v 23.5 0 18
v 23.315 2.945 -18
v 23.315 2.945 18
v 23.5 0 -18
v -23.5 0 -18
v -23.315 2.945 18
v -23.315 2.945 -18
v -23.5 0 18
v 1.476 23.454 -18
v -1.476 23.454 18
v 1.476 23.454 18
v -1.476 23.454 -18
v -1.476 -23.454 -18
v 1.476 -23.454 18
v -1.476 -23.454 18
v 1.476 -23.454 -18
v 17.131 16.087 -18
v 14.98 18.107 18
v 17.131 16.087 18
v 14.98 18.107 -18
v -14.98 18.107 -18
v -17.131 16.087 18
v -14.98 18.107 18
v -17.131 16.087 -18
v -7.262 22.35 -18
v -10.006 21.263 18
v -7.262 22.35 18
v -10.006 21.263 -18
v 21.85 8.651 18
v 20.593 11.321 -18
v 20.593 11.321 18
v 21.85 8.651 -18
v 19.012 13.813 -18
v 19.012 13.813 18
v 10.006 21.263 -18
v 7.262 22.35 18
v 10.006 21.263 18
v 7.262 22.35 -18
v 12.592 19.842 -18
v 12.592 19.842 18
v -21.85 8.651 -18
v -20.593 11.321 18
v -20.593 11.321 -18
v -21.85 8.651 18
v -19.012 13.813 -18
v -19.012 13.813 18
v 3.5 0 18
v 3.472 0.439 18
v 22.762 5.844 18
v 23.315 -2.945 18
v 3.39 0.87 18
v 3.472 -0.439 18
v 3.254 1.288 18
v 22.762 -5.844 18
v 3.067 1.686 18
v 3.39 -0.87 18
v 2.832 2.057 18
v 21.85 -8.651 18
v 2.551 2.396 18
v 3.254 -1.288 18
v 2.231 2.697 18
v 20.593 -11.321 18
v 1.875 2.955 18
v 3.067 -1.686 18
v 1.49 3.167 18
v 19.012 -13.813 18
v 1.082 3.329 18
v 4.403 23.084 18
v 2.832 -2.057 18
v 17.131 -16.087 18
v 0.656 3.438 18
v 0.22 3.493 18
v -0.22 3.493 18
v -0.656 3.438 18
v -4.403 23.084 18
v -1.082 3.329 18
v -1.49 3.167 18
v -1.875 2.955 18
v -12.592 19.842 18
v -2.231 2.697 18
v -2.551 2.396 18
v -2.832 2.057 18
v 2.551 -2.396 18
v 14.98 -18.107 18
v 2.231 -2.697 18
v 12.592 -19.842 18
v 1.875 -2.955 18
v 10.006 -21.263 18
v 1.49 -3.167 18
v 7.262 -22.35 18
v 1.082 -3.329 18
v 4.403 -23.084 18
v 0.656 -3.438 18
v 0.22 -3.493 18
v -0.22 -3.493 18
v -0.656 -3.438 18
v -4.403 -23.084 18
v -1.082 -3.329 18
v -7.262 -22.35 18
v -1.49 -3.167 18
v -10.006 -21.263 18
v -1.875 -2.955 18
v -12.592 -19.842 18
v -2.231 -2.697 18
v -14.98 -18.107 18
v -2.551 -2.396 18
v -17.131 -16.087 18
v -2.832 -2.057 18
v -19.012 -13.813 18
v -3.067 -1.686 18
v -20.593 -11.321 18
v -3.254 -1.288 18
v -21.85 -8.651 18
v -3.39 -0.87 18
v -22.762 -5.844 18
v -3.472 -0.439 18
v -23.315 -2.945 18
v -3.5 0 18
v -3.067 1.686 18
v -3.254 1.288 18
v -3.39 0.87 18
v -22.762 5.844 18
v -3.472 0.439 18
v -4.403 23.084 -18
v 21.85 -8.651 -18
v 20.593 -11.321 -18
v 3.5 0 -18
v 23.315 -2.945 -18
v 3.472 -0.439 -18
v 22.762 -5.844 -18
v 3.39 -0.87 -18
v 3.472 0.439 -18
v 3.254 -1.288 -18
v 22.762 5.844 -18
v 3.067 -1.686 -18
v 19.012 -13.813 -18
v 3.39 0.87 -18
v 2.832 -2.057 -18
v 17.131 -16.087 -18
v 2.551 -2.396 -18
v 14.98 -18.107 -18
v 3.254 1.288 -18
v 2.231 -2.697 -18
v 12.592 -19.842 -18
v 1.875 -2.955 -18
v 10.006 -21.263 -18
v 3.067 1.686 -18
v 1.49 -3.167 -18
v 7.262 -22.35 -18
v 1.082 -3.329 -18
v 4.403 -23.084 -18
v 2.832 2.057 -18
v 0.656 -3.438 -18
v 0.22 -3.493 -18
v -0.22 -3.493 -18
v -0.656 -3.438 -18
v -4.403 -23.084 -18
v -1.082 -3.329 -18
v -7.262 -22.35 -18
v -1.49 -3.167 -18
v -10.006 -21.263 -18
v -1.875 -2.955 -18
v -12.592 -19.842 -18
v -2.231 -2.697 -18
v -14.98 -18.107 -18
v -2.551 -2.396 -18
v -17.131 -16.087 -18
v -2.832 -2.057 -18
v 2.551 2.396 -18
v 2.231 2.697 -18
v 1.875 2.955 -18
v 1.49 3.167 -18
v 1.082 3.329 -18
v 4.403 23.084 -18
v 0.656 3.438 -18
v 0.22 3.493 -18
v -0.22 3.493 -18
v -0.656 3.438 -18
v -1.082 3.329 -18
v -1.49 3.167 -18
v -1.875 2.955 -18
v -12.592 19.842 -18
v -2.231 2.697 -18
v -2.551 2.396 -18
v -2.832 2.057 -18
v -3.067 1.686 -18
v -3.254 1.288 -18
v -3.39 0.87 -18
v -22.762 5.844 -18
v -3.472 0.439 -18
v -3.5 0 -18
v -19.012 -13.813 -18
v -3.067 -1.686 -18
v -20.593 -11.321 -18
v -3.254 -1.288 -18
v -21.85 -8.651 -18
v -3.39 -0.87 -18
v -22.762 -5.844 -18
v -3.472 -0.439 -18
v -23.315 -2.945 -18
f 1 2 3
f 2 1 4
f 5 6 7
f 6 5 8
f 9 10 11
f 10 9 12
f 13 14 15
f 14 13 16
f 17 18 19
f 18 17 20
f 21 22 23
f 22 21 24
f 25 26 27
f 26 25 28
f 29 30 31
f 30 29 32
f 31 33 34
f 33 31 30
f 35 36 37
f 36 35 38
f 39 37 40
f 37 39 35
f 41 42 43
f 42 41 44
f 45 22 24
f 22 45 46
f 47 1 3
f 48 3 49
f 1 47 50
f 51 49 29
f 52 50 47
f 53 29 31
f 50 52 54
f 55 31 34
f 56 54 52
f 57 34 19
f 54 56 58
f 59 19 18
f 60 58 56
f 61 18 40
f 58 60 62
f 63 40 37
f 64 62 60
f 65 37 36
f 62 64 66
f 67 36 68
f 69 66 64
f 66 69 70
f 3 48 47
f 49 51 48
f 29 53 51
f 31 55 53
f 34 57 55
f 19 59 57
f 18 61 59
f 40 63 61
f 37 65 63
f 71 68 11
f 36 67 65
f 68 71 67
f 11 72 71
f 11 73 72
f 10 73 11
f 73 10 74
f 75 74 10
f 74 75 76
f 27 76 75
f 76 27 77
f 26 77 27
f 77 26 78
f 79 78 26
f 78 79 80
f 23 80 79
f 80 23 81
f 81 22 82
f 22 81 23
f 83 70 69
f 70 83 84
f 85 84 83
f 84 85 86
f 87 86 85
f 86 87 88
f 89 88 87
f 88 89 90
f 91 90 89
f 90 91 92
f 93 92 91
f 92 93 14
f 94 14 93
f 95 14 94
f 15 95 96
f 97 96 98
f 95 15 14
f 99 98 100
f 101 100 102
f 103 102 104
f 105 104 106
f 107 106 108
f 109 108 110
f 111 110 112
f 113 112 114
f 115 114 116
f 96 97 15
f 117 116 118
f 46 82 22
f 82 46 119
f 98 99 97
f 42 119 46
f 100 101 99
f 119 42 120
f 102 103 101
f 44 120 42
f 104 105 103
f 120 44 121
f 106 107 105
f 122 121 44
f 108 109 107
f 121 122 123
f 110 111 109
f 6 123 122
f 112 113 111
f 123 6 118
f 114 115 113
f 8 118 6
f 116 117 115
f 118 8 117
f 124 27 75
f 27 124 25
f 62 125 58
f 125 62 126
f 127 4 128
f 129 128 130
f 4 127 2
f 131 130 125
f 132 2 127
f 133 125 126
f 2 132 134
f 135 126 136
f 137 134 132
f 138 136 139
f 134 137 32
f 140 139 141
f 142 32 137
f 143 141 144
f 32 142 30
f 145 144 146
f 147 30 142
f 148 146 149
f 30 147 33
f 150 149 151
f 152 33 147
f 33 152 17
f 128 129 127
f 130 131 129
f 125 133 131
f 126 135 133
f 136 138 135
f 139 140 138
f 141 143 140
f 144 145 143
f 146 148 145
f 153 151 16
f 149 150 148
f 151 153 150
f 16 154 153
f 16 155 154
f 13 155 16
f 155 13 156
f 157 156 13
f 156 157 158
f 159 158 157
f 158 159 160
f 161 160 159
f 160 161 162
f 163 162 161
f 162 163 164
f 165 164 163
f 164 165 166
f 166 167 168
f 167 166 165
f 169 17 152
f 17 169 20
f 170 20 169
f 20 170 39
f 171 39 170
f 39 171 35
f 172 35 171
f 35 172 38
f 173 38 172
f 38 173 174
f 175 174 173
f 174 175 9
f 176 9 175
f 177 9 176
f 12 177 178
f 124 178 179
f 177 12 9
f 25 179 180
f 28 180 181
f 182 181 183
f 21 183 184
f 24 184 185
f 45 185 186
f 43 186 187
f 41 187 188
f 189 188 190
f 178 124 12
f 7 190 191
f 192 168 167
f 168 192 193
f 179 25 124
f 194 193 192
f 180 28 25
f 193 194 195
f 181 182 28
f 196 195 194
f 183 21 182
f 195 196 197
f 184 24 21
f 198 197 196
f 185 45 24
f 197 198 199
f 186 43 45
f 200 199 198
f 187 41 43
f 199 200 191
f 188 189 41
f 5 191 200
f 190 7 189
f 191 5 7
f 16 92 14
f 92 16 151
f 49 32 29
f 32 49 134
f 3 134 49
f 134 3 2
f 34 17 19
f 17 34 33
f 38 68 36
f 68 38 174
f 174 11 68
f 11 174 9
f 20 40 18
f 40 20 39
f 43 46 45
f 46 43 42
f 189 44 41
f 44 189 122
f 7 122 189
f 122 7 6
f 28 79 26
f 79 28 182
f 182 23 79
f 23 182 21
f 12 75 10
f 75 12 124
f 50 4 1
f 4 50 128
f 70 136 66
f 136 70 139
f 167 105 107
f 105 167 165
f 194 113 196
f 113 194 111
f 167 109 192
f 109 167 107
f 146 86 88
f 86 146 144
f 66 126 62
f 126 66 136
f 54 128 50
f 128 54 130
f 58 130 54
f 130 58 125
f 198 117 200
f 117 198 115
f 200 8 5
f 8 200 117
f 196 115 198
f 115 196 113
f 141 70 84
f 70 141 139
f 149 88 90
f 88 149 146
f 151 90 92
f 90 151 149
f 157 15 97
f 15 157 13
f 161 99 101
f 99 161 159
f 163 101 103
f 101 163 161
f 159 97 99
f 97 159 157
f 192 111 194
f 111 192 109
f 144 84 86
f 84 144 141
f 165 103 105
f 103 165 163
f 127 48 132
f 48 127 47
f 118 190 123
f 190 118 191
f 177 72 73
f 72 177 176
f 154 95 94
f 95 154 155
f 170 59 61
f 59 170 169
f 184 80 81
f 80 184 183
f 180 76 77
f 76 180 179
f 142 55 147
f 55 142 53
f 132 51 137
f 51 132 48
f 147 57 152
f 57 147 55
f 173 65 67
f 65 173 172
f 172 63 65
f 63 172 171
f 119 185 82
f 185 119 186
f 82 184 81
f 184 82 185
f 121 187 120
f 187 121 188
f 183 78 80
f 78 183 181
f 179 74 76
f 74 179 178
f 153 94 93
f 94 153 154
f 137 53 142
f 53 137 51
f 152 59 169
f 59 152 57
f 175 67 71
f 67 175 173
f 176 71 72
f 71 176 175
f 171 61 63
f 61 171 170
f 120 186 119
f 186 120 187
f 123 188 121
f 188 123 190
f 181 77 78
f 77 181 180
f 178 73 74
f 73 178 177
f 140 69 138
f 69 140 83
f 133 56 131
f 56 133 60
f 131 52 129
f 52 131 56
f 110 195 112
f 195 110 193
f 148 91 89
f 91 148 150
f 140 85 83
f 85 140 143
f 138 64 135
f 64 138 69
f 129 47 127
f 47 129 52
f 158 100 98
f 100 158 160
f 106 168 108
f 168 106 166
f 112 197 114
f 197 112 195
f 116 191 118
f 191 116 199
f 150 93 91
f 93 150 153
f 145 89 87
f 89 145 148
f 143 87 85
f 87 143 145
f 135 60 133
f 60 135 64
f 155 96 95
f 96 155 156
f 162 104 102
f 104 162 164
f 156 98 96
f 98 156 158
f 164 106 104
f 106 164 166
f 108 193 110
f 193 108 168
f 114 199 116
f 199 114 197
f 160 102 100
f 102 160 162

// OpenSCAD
$fn = 50;


difference() {
	union() {
		translate(v = [0, 0, -18.0000000000]) {
			cylinder(h = 36, r = 23.5000000000);
		}
	}
	union() {
		translate(v = [0, 0, -100.0000000000]) {
			cylinder(h = 200, r = 3.5000000000);
		}
	}
}
